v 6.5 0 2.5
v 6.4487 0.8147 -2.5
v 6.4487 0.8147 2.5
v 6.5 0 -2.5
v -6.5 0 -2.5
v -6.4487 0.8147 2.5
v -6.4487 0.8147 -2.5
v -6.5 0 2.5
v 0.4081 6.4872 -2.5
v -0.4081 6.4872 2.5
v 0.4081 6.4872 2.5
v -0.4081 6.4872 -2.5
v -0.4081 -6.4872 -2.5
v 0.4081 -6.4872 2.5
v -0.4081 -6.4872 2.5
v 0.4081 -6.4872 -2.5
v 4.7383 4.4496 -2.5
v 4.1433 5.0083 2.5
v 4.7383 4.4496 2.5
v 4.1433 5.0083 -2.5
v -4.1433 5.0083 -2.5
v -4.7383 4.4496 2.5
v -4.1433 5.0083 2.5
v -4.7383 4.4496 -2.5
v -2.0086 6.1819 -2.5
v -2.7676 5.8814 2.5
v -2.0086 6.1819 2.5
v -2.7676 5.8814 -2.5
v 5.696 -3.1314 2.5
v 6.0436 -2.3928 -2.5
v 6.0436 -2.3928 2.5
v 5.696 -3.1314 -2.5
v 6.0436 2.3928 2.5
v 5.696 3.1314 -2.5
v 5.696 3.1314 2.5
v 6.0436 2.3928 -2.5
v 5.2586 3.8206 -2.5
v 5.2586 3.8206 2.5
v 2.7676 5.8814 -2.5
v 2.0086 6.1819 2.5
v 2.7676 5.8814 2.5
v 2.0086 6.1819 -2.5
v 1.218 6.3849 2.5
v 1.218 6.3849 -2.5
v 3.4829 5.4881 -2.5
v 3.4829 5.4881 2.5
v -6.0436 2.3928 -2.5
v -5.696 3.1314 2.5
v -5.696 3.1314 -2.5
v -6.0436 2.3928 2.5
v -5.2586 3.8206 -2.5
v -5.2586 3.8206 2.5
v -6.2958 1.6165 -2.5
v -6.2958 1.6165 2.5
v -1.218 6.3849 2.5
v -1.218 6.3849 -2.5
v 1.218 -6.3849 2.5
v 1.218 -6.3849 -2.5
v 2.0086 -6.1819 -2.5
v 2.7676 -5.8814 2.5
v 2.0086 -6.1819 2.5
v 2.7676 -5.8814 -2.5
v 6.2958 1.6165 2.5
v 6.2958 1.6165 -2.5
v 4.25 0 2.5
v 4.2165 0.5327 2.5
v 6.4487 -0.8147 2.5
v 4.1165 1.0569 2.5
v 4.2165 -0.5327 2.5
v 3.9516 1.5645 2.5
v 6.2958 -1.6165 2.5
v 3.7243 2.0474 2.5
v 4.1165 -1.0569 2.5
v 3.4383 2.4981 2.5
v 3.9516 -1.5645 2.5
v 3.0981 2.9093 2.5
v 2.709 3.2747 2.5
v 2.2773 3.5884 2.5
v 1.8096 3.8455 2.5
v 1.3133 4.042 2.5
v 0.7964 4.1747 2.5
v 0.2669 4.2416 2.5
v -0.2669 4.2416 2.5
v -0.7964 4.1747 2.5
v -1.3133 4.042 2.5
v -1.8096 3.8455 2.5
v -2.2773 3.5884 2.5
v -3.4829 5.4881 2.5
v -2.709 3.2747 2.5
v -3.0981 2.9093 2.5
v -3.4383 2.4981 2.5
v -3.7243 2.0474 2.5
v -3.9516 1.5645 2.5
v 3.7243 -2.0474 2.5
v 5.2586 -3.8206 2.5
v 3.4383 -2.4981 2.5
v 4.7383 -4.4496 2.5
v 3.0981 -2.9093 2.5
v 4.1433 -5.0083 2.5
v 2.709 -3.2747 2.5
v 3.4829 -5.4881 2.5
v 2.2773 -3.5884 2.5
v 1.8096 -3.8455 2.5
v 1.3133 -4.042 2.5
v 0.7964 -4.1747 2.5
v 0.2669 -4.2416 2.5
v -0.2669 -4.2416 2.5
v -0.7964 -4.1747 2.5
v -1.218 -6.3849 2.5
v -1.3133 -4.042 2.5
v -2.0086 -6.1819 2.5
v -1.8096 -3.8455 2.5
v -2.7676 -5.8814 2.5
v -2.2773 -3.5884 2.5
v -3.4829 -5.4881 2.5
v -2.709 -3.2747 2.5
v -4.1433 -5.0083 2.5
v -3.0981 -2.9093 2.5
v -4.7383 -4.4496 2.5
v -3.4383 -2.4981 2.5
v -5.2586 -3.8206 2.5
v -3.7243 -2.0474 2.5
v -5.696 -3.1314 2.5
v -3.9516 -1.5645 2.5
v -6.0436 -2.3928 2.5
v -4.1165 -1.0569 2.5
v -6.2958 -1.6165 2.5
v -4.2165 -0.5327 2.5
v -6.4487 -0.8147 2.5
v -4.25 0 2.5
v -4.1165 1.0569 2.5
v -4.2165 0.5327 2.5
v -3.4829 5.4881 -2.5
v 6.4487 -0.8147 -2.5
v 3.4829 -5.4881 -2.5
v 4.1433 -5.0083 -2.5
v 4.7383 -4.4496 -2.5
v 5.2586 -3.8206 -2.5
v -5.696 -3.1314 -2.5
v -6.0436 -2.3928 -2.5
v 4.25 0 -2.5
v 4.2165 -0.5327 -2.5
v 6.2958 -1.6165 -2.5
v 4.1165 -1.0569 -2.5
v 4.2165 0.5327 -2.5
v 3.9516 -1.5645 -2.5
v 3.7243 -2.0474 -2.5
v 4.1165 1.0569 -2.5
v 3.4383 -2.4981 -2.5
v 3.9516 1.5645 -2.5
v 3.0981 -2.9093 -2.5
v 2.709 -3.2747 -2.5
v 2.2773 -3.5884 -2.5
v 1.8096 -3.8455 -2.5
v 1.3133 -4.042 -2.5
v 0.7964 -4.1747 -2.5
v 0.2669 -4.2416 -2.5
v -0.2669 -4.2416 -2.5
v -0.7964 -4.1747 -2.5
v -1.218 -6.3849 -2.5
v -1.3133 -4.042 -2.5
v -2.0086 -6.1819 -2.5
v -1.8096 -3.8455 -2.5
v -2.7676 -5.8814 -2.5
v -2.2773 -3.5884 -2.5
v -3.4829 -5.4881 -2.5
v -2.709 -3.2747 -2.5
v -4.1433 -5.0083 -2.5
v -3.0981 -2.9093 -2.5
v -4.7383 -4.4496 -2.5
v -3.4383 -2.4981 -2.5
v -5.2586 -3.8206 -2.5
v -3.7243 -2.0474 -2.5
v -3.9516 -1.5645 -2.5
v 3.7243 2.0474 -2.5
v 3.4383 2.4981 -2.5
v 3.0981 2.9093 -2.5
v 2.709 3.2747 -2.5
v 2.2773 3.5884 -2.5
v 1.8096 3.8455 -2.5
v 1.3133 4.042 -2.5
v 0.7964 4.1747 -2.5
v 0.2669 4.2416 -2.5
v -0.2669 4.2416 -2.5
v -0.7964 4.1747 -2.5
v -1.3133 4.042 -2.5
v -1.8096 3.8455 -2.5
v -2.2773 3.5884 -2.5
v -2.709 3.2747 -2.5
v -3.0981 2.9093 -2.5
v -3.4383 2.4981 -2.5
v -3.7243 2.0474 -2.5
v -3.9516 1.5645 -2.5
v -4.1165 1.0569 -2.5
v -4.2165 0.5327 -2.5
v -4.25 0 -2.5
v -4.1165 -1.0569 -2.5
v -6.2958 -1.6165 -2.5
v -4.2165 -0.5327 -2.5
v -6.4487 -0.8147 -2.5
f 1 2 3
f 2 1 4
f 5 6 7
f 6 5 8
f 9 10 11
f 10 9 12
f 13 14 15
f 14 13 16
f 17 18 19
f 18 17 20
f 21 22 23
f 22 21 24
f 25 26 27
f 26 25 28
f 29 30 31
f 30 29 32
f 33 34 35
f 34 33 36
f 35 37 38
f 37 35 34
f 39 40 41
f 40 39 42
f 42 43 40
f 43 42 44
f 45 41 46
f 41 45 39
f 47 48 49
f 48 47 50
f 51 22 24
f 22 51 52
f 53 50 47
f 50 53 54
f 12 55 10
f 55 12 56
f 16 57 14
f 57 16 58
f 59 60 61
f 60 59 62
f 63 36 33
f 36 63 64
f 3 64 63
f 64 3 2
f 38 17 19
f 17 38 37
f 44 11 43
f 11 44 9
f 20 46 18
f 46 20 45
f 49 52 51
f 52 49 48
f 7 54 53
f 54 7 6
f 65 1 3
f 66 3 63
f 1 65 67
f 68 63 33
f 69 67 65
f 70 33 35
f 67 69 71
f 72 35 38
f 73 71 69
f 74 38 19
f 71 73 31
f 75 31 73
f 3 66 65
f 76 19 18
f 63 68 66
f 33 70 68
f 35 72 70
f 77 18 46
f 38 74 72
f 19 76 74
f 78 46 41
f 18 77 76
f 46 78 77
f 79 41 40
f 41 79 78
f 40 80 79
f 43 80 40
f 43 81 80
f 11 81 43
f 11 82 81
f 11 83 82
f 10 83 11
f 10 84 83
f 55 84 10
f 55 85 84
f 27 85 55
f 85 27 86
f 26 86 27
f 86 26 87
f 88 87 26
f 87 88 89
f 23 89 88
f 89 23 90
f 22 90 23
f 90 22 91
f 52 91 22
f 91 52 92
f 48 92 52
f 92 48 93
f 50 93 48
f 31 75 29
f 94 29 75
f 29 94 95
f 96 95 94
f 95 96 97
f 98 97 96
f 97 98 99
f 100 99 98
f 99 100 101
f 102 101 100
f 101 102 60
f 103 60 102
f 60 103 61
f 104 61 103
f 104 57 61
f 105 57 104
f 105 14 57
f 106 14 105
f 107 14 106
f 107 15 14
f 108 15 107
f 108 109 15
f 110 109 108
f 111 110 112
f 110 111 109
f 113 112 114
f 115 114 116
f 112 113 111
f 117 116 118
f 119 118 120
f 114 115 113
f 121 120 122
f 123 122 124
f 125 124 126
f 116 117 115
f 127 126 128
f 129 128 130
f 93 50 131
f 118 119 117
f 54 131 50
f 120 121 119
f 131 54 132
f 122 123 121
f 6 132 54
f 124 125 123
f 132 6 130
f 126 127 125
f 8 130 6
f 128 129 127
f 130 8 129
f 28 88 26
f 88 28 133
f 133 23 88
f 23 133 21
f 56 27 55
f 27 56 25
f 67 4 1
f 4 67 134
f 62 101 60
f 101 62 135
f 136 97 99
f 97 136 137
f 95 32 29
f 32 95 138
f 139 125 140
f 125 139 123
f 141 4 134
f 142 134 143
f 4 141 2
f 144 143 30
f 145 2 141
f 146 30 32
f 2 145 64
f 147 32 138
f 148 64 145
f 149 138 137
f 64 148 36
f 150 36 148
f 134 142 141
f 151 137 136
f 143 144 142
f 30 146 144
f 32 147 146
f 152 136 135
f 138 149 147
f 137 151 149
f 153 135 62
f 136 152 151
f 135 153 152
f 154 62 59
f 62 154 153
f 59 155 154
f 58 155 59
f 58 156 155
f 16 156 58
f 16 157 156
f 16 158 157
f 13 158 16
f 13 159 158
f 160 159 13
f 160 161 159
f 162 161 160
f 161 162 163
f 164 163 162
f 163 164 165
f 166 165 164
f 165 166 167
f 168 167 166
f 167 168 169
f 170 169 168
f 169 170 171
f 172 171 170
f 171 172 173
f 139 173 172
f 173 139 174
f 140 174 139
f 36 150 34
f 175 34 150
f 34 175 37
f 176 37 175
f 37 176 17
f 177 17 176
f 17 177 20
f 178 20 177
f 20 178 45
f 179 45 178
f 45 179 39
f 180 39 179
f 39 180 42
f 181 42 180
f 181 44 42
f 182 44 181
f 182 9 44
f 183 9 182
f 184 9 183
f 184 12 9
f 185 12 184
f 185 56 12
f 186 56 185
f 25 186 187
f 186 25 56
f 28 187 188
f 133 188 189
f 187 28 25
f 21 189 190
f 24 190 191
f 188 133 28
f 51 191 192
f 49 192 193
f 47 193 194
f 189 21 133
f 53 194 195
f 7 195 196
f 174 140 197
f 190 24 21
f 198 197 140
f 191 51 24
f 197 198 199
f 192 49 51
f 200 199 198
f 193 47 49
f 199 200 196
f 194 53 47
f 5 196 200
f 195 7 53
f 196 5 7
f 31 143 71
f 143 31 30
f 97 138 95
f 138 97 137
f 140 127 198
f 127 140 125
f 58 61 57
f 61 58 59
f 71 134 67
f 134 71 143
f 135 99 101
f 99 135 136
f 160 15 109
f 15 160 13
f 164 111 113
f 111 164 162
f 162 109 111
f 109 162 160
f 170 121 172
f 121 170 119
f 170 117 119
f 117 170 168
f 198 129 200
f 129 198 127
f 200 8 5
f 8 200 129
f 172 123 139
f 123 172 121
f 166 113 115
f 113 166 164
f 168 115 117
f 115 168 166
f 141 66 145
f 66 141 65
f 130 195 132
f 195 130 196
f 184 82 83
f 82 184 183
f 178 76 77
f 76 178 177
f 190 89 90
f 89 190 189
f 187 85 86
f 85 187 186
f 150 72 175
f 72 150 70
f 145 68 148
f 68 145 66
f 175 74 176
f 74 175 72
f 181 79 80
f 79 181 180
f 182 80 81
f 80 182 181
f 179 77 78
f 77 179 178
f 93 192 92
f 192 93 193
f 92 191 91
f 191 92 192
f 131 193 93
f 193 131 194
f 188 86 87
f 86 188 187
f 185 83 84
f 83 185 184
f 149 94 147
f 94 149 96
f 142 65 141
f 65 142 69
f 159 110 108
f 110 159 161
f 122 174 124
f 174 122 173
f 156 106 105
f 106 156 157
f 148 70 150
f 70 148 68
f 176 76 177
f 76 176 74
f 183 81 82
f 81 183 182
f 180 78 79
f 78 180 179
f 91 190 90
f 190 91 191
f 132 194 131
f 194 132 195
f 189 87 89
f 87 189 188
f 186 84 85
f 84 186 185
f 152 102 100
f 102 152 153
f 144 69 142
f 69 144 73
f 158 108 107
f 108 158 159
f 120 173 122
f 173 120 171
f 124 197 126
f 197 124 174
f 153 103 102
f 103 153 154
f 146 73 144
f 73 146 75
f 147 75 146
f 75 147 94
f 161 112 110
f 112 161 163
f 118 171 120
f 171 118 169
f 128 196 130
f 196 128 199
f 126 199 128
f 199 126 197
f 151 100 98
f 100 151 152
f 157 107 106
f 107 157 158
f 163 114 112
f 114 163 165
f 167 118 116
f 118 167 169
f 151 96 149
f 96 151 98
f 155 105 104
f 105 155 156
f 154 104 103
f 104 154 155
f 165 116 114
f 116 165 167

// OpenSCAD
$fn = 50;


difference() {
	union() {
		translate(v = [0, 0, -2.5000000000]) {
			cylinder(h = 5, r = 6.5000000000);
		}
	}
	union() {
		translate(v = [0, 0, -100.0000000000]) {
			cylinder(h = 200, r = 4.2500000000);
		}
	}
}
